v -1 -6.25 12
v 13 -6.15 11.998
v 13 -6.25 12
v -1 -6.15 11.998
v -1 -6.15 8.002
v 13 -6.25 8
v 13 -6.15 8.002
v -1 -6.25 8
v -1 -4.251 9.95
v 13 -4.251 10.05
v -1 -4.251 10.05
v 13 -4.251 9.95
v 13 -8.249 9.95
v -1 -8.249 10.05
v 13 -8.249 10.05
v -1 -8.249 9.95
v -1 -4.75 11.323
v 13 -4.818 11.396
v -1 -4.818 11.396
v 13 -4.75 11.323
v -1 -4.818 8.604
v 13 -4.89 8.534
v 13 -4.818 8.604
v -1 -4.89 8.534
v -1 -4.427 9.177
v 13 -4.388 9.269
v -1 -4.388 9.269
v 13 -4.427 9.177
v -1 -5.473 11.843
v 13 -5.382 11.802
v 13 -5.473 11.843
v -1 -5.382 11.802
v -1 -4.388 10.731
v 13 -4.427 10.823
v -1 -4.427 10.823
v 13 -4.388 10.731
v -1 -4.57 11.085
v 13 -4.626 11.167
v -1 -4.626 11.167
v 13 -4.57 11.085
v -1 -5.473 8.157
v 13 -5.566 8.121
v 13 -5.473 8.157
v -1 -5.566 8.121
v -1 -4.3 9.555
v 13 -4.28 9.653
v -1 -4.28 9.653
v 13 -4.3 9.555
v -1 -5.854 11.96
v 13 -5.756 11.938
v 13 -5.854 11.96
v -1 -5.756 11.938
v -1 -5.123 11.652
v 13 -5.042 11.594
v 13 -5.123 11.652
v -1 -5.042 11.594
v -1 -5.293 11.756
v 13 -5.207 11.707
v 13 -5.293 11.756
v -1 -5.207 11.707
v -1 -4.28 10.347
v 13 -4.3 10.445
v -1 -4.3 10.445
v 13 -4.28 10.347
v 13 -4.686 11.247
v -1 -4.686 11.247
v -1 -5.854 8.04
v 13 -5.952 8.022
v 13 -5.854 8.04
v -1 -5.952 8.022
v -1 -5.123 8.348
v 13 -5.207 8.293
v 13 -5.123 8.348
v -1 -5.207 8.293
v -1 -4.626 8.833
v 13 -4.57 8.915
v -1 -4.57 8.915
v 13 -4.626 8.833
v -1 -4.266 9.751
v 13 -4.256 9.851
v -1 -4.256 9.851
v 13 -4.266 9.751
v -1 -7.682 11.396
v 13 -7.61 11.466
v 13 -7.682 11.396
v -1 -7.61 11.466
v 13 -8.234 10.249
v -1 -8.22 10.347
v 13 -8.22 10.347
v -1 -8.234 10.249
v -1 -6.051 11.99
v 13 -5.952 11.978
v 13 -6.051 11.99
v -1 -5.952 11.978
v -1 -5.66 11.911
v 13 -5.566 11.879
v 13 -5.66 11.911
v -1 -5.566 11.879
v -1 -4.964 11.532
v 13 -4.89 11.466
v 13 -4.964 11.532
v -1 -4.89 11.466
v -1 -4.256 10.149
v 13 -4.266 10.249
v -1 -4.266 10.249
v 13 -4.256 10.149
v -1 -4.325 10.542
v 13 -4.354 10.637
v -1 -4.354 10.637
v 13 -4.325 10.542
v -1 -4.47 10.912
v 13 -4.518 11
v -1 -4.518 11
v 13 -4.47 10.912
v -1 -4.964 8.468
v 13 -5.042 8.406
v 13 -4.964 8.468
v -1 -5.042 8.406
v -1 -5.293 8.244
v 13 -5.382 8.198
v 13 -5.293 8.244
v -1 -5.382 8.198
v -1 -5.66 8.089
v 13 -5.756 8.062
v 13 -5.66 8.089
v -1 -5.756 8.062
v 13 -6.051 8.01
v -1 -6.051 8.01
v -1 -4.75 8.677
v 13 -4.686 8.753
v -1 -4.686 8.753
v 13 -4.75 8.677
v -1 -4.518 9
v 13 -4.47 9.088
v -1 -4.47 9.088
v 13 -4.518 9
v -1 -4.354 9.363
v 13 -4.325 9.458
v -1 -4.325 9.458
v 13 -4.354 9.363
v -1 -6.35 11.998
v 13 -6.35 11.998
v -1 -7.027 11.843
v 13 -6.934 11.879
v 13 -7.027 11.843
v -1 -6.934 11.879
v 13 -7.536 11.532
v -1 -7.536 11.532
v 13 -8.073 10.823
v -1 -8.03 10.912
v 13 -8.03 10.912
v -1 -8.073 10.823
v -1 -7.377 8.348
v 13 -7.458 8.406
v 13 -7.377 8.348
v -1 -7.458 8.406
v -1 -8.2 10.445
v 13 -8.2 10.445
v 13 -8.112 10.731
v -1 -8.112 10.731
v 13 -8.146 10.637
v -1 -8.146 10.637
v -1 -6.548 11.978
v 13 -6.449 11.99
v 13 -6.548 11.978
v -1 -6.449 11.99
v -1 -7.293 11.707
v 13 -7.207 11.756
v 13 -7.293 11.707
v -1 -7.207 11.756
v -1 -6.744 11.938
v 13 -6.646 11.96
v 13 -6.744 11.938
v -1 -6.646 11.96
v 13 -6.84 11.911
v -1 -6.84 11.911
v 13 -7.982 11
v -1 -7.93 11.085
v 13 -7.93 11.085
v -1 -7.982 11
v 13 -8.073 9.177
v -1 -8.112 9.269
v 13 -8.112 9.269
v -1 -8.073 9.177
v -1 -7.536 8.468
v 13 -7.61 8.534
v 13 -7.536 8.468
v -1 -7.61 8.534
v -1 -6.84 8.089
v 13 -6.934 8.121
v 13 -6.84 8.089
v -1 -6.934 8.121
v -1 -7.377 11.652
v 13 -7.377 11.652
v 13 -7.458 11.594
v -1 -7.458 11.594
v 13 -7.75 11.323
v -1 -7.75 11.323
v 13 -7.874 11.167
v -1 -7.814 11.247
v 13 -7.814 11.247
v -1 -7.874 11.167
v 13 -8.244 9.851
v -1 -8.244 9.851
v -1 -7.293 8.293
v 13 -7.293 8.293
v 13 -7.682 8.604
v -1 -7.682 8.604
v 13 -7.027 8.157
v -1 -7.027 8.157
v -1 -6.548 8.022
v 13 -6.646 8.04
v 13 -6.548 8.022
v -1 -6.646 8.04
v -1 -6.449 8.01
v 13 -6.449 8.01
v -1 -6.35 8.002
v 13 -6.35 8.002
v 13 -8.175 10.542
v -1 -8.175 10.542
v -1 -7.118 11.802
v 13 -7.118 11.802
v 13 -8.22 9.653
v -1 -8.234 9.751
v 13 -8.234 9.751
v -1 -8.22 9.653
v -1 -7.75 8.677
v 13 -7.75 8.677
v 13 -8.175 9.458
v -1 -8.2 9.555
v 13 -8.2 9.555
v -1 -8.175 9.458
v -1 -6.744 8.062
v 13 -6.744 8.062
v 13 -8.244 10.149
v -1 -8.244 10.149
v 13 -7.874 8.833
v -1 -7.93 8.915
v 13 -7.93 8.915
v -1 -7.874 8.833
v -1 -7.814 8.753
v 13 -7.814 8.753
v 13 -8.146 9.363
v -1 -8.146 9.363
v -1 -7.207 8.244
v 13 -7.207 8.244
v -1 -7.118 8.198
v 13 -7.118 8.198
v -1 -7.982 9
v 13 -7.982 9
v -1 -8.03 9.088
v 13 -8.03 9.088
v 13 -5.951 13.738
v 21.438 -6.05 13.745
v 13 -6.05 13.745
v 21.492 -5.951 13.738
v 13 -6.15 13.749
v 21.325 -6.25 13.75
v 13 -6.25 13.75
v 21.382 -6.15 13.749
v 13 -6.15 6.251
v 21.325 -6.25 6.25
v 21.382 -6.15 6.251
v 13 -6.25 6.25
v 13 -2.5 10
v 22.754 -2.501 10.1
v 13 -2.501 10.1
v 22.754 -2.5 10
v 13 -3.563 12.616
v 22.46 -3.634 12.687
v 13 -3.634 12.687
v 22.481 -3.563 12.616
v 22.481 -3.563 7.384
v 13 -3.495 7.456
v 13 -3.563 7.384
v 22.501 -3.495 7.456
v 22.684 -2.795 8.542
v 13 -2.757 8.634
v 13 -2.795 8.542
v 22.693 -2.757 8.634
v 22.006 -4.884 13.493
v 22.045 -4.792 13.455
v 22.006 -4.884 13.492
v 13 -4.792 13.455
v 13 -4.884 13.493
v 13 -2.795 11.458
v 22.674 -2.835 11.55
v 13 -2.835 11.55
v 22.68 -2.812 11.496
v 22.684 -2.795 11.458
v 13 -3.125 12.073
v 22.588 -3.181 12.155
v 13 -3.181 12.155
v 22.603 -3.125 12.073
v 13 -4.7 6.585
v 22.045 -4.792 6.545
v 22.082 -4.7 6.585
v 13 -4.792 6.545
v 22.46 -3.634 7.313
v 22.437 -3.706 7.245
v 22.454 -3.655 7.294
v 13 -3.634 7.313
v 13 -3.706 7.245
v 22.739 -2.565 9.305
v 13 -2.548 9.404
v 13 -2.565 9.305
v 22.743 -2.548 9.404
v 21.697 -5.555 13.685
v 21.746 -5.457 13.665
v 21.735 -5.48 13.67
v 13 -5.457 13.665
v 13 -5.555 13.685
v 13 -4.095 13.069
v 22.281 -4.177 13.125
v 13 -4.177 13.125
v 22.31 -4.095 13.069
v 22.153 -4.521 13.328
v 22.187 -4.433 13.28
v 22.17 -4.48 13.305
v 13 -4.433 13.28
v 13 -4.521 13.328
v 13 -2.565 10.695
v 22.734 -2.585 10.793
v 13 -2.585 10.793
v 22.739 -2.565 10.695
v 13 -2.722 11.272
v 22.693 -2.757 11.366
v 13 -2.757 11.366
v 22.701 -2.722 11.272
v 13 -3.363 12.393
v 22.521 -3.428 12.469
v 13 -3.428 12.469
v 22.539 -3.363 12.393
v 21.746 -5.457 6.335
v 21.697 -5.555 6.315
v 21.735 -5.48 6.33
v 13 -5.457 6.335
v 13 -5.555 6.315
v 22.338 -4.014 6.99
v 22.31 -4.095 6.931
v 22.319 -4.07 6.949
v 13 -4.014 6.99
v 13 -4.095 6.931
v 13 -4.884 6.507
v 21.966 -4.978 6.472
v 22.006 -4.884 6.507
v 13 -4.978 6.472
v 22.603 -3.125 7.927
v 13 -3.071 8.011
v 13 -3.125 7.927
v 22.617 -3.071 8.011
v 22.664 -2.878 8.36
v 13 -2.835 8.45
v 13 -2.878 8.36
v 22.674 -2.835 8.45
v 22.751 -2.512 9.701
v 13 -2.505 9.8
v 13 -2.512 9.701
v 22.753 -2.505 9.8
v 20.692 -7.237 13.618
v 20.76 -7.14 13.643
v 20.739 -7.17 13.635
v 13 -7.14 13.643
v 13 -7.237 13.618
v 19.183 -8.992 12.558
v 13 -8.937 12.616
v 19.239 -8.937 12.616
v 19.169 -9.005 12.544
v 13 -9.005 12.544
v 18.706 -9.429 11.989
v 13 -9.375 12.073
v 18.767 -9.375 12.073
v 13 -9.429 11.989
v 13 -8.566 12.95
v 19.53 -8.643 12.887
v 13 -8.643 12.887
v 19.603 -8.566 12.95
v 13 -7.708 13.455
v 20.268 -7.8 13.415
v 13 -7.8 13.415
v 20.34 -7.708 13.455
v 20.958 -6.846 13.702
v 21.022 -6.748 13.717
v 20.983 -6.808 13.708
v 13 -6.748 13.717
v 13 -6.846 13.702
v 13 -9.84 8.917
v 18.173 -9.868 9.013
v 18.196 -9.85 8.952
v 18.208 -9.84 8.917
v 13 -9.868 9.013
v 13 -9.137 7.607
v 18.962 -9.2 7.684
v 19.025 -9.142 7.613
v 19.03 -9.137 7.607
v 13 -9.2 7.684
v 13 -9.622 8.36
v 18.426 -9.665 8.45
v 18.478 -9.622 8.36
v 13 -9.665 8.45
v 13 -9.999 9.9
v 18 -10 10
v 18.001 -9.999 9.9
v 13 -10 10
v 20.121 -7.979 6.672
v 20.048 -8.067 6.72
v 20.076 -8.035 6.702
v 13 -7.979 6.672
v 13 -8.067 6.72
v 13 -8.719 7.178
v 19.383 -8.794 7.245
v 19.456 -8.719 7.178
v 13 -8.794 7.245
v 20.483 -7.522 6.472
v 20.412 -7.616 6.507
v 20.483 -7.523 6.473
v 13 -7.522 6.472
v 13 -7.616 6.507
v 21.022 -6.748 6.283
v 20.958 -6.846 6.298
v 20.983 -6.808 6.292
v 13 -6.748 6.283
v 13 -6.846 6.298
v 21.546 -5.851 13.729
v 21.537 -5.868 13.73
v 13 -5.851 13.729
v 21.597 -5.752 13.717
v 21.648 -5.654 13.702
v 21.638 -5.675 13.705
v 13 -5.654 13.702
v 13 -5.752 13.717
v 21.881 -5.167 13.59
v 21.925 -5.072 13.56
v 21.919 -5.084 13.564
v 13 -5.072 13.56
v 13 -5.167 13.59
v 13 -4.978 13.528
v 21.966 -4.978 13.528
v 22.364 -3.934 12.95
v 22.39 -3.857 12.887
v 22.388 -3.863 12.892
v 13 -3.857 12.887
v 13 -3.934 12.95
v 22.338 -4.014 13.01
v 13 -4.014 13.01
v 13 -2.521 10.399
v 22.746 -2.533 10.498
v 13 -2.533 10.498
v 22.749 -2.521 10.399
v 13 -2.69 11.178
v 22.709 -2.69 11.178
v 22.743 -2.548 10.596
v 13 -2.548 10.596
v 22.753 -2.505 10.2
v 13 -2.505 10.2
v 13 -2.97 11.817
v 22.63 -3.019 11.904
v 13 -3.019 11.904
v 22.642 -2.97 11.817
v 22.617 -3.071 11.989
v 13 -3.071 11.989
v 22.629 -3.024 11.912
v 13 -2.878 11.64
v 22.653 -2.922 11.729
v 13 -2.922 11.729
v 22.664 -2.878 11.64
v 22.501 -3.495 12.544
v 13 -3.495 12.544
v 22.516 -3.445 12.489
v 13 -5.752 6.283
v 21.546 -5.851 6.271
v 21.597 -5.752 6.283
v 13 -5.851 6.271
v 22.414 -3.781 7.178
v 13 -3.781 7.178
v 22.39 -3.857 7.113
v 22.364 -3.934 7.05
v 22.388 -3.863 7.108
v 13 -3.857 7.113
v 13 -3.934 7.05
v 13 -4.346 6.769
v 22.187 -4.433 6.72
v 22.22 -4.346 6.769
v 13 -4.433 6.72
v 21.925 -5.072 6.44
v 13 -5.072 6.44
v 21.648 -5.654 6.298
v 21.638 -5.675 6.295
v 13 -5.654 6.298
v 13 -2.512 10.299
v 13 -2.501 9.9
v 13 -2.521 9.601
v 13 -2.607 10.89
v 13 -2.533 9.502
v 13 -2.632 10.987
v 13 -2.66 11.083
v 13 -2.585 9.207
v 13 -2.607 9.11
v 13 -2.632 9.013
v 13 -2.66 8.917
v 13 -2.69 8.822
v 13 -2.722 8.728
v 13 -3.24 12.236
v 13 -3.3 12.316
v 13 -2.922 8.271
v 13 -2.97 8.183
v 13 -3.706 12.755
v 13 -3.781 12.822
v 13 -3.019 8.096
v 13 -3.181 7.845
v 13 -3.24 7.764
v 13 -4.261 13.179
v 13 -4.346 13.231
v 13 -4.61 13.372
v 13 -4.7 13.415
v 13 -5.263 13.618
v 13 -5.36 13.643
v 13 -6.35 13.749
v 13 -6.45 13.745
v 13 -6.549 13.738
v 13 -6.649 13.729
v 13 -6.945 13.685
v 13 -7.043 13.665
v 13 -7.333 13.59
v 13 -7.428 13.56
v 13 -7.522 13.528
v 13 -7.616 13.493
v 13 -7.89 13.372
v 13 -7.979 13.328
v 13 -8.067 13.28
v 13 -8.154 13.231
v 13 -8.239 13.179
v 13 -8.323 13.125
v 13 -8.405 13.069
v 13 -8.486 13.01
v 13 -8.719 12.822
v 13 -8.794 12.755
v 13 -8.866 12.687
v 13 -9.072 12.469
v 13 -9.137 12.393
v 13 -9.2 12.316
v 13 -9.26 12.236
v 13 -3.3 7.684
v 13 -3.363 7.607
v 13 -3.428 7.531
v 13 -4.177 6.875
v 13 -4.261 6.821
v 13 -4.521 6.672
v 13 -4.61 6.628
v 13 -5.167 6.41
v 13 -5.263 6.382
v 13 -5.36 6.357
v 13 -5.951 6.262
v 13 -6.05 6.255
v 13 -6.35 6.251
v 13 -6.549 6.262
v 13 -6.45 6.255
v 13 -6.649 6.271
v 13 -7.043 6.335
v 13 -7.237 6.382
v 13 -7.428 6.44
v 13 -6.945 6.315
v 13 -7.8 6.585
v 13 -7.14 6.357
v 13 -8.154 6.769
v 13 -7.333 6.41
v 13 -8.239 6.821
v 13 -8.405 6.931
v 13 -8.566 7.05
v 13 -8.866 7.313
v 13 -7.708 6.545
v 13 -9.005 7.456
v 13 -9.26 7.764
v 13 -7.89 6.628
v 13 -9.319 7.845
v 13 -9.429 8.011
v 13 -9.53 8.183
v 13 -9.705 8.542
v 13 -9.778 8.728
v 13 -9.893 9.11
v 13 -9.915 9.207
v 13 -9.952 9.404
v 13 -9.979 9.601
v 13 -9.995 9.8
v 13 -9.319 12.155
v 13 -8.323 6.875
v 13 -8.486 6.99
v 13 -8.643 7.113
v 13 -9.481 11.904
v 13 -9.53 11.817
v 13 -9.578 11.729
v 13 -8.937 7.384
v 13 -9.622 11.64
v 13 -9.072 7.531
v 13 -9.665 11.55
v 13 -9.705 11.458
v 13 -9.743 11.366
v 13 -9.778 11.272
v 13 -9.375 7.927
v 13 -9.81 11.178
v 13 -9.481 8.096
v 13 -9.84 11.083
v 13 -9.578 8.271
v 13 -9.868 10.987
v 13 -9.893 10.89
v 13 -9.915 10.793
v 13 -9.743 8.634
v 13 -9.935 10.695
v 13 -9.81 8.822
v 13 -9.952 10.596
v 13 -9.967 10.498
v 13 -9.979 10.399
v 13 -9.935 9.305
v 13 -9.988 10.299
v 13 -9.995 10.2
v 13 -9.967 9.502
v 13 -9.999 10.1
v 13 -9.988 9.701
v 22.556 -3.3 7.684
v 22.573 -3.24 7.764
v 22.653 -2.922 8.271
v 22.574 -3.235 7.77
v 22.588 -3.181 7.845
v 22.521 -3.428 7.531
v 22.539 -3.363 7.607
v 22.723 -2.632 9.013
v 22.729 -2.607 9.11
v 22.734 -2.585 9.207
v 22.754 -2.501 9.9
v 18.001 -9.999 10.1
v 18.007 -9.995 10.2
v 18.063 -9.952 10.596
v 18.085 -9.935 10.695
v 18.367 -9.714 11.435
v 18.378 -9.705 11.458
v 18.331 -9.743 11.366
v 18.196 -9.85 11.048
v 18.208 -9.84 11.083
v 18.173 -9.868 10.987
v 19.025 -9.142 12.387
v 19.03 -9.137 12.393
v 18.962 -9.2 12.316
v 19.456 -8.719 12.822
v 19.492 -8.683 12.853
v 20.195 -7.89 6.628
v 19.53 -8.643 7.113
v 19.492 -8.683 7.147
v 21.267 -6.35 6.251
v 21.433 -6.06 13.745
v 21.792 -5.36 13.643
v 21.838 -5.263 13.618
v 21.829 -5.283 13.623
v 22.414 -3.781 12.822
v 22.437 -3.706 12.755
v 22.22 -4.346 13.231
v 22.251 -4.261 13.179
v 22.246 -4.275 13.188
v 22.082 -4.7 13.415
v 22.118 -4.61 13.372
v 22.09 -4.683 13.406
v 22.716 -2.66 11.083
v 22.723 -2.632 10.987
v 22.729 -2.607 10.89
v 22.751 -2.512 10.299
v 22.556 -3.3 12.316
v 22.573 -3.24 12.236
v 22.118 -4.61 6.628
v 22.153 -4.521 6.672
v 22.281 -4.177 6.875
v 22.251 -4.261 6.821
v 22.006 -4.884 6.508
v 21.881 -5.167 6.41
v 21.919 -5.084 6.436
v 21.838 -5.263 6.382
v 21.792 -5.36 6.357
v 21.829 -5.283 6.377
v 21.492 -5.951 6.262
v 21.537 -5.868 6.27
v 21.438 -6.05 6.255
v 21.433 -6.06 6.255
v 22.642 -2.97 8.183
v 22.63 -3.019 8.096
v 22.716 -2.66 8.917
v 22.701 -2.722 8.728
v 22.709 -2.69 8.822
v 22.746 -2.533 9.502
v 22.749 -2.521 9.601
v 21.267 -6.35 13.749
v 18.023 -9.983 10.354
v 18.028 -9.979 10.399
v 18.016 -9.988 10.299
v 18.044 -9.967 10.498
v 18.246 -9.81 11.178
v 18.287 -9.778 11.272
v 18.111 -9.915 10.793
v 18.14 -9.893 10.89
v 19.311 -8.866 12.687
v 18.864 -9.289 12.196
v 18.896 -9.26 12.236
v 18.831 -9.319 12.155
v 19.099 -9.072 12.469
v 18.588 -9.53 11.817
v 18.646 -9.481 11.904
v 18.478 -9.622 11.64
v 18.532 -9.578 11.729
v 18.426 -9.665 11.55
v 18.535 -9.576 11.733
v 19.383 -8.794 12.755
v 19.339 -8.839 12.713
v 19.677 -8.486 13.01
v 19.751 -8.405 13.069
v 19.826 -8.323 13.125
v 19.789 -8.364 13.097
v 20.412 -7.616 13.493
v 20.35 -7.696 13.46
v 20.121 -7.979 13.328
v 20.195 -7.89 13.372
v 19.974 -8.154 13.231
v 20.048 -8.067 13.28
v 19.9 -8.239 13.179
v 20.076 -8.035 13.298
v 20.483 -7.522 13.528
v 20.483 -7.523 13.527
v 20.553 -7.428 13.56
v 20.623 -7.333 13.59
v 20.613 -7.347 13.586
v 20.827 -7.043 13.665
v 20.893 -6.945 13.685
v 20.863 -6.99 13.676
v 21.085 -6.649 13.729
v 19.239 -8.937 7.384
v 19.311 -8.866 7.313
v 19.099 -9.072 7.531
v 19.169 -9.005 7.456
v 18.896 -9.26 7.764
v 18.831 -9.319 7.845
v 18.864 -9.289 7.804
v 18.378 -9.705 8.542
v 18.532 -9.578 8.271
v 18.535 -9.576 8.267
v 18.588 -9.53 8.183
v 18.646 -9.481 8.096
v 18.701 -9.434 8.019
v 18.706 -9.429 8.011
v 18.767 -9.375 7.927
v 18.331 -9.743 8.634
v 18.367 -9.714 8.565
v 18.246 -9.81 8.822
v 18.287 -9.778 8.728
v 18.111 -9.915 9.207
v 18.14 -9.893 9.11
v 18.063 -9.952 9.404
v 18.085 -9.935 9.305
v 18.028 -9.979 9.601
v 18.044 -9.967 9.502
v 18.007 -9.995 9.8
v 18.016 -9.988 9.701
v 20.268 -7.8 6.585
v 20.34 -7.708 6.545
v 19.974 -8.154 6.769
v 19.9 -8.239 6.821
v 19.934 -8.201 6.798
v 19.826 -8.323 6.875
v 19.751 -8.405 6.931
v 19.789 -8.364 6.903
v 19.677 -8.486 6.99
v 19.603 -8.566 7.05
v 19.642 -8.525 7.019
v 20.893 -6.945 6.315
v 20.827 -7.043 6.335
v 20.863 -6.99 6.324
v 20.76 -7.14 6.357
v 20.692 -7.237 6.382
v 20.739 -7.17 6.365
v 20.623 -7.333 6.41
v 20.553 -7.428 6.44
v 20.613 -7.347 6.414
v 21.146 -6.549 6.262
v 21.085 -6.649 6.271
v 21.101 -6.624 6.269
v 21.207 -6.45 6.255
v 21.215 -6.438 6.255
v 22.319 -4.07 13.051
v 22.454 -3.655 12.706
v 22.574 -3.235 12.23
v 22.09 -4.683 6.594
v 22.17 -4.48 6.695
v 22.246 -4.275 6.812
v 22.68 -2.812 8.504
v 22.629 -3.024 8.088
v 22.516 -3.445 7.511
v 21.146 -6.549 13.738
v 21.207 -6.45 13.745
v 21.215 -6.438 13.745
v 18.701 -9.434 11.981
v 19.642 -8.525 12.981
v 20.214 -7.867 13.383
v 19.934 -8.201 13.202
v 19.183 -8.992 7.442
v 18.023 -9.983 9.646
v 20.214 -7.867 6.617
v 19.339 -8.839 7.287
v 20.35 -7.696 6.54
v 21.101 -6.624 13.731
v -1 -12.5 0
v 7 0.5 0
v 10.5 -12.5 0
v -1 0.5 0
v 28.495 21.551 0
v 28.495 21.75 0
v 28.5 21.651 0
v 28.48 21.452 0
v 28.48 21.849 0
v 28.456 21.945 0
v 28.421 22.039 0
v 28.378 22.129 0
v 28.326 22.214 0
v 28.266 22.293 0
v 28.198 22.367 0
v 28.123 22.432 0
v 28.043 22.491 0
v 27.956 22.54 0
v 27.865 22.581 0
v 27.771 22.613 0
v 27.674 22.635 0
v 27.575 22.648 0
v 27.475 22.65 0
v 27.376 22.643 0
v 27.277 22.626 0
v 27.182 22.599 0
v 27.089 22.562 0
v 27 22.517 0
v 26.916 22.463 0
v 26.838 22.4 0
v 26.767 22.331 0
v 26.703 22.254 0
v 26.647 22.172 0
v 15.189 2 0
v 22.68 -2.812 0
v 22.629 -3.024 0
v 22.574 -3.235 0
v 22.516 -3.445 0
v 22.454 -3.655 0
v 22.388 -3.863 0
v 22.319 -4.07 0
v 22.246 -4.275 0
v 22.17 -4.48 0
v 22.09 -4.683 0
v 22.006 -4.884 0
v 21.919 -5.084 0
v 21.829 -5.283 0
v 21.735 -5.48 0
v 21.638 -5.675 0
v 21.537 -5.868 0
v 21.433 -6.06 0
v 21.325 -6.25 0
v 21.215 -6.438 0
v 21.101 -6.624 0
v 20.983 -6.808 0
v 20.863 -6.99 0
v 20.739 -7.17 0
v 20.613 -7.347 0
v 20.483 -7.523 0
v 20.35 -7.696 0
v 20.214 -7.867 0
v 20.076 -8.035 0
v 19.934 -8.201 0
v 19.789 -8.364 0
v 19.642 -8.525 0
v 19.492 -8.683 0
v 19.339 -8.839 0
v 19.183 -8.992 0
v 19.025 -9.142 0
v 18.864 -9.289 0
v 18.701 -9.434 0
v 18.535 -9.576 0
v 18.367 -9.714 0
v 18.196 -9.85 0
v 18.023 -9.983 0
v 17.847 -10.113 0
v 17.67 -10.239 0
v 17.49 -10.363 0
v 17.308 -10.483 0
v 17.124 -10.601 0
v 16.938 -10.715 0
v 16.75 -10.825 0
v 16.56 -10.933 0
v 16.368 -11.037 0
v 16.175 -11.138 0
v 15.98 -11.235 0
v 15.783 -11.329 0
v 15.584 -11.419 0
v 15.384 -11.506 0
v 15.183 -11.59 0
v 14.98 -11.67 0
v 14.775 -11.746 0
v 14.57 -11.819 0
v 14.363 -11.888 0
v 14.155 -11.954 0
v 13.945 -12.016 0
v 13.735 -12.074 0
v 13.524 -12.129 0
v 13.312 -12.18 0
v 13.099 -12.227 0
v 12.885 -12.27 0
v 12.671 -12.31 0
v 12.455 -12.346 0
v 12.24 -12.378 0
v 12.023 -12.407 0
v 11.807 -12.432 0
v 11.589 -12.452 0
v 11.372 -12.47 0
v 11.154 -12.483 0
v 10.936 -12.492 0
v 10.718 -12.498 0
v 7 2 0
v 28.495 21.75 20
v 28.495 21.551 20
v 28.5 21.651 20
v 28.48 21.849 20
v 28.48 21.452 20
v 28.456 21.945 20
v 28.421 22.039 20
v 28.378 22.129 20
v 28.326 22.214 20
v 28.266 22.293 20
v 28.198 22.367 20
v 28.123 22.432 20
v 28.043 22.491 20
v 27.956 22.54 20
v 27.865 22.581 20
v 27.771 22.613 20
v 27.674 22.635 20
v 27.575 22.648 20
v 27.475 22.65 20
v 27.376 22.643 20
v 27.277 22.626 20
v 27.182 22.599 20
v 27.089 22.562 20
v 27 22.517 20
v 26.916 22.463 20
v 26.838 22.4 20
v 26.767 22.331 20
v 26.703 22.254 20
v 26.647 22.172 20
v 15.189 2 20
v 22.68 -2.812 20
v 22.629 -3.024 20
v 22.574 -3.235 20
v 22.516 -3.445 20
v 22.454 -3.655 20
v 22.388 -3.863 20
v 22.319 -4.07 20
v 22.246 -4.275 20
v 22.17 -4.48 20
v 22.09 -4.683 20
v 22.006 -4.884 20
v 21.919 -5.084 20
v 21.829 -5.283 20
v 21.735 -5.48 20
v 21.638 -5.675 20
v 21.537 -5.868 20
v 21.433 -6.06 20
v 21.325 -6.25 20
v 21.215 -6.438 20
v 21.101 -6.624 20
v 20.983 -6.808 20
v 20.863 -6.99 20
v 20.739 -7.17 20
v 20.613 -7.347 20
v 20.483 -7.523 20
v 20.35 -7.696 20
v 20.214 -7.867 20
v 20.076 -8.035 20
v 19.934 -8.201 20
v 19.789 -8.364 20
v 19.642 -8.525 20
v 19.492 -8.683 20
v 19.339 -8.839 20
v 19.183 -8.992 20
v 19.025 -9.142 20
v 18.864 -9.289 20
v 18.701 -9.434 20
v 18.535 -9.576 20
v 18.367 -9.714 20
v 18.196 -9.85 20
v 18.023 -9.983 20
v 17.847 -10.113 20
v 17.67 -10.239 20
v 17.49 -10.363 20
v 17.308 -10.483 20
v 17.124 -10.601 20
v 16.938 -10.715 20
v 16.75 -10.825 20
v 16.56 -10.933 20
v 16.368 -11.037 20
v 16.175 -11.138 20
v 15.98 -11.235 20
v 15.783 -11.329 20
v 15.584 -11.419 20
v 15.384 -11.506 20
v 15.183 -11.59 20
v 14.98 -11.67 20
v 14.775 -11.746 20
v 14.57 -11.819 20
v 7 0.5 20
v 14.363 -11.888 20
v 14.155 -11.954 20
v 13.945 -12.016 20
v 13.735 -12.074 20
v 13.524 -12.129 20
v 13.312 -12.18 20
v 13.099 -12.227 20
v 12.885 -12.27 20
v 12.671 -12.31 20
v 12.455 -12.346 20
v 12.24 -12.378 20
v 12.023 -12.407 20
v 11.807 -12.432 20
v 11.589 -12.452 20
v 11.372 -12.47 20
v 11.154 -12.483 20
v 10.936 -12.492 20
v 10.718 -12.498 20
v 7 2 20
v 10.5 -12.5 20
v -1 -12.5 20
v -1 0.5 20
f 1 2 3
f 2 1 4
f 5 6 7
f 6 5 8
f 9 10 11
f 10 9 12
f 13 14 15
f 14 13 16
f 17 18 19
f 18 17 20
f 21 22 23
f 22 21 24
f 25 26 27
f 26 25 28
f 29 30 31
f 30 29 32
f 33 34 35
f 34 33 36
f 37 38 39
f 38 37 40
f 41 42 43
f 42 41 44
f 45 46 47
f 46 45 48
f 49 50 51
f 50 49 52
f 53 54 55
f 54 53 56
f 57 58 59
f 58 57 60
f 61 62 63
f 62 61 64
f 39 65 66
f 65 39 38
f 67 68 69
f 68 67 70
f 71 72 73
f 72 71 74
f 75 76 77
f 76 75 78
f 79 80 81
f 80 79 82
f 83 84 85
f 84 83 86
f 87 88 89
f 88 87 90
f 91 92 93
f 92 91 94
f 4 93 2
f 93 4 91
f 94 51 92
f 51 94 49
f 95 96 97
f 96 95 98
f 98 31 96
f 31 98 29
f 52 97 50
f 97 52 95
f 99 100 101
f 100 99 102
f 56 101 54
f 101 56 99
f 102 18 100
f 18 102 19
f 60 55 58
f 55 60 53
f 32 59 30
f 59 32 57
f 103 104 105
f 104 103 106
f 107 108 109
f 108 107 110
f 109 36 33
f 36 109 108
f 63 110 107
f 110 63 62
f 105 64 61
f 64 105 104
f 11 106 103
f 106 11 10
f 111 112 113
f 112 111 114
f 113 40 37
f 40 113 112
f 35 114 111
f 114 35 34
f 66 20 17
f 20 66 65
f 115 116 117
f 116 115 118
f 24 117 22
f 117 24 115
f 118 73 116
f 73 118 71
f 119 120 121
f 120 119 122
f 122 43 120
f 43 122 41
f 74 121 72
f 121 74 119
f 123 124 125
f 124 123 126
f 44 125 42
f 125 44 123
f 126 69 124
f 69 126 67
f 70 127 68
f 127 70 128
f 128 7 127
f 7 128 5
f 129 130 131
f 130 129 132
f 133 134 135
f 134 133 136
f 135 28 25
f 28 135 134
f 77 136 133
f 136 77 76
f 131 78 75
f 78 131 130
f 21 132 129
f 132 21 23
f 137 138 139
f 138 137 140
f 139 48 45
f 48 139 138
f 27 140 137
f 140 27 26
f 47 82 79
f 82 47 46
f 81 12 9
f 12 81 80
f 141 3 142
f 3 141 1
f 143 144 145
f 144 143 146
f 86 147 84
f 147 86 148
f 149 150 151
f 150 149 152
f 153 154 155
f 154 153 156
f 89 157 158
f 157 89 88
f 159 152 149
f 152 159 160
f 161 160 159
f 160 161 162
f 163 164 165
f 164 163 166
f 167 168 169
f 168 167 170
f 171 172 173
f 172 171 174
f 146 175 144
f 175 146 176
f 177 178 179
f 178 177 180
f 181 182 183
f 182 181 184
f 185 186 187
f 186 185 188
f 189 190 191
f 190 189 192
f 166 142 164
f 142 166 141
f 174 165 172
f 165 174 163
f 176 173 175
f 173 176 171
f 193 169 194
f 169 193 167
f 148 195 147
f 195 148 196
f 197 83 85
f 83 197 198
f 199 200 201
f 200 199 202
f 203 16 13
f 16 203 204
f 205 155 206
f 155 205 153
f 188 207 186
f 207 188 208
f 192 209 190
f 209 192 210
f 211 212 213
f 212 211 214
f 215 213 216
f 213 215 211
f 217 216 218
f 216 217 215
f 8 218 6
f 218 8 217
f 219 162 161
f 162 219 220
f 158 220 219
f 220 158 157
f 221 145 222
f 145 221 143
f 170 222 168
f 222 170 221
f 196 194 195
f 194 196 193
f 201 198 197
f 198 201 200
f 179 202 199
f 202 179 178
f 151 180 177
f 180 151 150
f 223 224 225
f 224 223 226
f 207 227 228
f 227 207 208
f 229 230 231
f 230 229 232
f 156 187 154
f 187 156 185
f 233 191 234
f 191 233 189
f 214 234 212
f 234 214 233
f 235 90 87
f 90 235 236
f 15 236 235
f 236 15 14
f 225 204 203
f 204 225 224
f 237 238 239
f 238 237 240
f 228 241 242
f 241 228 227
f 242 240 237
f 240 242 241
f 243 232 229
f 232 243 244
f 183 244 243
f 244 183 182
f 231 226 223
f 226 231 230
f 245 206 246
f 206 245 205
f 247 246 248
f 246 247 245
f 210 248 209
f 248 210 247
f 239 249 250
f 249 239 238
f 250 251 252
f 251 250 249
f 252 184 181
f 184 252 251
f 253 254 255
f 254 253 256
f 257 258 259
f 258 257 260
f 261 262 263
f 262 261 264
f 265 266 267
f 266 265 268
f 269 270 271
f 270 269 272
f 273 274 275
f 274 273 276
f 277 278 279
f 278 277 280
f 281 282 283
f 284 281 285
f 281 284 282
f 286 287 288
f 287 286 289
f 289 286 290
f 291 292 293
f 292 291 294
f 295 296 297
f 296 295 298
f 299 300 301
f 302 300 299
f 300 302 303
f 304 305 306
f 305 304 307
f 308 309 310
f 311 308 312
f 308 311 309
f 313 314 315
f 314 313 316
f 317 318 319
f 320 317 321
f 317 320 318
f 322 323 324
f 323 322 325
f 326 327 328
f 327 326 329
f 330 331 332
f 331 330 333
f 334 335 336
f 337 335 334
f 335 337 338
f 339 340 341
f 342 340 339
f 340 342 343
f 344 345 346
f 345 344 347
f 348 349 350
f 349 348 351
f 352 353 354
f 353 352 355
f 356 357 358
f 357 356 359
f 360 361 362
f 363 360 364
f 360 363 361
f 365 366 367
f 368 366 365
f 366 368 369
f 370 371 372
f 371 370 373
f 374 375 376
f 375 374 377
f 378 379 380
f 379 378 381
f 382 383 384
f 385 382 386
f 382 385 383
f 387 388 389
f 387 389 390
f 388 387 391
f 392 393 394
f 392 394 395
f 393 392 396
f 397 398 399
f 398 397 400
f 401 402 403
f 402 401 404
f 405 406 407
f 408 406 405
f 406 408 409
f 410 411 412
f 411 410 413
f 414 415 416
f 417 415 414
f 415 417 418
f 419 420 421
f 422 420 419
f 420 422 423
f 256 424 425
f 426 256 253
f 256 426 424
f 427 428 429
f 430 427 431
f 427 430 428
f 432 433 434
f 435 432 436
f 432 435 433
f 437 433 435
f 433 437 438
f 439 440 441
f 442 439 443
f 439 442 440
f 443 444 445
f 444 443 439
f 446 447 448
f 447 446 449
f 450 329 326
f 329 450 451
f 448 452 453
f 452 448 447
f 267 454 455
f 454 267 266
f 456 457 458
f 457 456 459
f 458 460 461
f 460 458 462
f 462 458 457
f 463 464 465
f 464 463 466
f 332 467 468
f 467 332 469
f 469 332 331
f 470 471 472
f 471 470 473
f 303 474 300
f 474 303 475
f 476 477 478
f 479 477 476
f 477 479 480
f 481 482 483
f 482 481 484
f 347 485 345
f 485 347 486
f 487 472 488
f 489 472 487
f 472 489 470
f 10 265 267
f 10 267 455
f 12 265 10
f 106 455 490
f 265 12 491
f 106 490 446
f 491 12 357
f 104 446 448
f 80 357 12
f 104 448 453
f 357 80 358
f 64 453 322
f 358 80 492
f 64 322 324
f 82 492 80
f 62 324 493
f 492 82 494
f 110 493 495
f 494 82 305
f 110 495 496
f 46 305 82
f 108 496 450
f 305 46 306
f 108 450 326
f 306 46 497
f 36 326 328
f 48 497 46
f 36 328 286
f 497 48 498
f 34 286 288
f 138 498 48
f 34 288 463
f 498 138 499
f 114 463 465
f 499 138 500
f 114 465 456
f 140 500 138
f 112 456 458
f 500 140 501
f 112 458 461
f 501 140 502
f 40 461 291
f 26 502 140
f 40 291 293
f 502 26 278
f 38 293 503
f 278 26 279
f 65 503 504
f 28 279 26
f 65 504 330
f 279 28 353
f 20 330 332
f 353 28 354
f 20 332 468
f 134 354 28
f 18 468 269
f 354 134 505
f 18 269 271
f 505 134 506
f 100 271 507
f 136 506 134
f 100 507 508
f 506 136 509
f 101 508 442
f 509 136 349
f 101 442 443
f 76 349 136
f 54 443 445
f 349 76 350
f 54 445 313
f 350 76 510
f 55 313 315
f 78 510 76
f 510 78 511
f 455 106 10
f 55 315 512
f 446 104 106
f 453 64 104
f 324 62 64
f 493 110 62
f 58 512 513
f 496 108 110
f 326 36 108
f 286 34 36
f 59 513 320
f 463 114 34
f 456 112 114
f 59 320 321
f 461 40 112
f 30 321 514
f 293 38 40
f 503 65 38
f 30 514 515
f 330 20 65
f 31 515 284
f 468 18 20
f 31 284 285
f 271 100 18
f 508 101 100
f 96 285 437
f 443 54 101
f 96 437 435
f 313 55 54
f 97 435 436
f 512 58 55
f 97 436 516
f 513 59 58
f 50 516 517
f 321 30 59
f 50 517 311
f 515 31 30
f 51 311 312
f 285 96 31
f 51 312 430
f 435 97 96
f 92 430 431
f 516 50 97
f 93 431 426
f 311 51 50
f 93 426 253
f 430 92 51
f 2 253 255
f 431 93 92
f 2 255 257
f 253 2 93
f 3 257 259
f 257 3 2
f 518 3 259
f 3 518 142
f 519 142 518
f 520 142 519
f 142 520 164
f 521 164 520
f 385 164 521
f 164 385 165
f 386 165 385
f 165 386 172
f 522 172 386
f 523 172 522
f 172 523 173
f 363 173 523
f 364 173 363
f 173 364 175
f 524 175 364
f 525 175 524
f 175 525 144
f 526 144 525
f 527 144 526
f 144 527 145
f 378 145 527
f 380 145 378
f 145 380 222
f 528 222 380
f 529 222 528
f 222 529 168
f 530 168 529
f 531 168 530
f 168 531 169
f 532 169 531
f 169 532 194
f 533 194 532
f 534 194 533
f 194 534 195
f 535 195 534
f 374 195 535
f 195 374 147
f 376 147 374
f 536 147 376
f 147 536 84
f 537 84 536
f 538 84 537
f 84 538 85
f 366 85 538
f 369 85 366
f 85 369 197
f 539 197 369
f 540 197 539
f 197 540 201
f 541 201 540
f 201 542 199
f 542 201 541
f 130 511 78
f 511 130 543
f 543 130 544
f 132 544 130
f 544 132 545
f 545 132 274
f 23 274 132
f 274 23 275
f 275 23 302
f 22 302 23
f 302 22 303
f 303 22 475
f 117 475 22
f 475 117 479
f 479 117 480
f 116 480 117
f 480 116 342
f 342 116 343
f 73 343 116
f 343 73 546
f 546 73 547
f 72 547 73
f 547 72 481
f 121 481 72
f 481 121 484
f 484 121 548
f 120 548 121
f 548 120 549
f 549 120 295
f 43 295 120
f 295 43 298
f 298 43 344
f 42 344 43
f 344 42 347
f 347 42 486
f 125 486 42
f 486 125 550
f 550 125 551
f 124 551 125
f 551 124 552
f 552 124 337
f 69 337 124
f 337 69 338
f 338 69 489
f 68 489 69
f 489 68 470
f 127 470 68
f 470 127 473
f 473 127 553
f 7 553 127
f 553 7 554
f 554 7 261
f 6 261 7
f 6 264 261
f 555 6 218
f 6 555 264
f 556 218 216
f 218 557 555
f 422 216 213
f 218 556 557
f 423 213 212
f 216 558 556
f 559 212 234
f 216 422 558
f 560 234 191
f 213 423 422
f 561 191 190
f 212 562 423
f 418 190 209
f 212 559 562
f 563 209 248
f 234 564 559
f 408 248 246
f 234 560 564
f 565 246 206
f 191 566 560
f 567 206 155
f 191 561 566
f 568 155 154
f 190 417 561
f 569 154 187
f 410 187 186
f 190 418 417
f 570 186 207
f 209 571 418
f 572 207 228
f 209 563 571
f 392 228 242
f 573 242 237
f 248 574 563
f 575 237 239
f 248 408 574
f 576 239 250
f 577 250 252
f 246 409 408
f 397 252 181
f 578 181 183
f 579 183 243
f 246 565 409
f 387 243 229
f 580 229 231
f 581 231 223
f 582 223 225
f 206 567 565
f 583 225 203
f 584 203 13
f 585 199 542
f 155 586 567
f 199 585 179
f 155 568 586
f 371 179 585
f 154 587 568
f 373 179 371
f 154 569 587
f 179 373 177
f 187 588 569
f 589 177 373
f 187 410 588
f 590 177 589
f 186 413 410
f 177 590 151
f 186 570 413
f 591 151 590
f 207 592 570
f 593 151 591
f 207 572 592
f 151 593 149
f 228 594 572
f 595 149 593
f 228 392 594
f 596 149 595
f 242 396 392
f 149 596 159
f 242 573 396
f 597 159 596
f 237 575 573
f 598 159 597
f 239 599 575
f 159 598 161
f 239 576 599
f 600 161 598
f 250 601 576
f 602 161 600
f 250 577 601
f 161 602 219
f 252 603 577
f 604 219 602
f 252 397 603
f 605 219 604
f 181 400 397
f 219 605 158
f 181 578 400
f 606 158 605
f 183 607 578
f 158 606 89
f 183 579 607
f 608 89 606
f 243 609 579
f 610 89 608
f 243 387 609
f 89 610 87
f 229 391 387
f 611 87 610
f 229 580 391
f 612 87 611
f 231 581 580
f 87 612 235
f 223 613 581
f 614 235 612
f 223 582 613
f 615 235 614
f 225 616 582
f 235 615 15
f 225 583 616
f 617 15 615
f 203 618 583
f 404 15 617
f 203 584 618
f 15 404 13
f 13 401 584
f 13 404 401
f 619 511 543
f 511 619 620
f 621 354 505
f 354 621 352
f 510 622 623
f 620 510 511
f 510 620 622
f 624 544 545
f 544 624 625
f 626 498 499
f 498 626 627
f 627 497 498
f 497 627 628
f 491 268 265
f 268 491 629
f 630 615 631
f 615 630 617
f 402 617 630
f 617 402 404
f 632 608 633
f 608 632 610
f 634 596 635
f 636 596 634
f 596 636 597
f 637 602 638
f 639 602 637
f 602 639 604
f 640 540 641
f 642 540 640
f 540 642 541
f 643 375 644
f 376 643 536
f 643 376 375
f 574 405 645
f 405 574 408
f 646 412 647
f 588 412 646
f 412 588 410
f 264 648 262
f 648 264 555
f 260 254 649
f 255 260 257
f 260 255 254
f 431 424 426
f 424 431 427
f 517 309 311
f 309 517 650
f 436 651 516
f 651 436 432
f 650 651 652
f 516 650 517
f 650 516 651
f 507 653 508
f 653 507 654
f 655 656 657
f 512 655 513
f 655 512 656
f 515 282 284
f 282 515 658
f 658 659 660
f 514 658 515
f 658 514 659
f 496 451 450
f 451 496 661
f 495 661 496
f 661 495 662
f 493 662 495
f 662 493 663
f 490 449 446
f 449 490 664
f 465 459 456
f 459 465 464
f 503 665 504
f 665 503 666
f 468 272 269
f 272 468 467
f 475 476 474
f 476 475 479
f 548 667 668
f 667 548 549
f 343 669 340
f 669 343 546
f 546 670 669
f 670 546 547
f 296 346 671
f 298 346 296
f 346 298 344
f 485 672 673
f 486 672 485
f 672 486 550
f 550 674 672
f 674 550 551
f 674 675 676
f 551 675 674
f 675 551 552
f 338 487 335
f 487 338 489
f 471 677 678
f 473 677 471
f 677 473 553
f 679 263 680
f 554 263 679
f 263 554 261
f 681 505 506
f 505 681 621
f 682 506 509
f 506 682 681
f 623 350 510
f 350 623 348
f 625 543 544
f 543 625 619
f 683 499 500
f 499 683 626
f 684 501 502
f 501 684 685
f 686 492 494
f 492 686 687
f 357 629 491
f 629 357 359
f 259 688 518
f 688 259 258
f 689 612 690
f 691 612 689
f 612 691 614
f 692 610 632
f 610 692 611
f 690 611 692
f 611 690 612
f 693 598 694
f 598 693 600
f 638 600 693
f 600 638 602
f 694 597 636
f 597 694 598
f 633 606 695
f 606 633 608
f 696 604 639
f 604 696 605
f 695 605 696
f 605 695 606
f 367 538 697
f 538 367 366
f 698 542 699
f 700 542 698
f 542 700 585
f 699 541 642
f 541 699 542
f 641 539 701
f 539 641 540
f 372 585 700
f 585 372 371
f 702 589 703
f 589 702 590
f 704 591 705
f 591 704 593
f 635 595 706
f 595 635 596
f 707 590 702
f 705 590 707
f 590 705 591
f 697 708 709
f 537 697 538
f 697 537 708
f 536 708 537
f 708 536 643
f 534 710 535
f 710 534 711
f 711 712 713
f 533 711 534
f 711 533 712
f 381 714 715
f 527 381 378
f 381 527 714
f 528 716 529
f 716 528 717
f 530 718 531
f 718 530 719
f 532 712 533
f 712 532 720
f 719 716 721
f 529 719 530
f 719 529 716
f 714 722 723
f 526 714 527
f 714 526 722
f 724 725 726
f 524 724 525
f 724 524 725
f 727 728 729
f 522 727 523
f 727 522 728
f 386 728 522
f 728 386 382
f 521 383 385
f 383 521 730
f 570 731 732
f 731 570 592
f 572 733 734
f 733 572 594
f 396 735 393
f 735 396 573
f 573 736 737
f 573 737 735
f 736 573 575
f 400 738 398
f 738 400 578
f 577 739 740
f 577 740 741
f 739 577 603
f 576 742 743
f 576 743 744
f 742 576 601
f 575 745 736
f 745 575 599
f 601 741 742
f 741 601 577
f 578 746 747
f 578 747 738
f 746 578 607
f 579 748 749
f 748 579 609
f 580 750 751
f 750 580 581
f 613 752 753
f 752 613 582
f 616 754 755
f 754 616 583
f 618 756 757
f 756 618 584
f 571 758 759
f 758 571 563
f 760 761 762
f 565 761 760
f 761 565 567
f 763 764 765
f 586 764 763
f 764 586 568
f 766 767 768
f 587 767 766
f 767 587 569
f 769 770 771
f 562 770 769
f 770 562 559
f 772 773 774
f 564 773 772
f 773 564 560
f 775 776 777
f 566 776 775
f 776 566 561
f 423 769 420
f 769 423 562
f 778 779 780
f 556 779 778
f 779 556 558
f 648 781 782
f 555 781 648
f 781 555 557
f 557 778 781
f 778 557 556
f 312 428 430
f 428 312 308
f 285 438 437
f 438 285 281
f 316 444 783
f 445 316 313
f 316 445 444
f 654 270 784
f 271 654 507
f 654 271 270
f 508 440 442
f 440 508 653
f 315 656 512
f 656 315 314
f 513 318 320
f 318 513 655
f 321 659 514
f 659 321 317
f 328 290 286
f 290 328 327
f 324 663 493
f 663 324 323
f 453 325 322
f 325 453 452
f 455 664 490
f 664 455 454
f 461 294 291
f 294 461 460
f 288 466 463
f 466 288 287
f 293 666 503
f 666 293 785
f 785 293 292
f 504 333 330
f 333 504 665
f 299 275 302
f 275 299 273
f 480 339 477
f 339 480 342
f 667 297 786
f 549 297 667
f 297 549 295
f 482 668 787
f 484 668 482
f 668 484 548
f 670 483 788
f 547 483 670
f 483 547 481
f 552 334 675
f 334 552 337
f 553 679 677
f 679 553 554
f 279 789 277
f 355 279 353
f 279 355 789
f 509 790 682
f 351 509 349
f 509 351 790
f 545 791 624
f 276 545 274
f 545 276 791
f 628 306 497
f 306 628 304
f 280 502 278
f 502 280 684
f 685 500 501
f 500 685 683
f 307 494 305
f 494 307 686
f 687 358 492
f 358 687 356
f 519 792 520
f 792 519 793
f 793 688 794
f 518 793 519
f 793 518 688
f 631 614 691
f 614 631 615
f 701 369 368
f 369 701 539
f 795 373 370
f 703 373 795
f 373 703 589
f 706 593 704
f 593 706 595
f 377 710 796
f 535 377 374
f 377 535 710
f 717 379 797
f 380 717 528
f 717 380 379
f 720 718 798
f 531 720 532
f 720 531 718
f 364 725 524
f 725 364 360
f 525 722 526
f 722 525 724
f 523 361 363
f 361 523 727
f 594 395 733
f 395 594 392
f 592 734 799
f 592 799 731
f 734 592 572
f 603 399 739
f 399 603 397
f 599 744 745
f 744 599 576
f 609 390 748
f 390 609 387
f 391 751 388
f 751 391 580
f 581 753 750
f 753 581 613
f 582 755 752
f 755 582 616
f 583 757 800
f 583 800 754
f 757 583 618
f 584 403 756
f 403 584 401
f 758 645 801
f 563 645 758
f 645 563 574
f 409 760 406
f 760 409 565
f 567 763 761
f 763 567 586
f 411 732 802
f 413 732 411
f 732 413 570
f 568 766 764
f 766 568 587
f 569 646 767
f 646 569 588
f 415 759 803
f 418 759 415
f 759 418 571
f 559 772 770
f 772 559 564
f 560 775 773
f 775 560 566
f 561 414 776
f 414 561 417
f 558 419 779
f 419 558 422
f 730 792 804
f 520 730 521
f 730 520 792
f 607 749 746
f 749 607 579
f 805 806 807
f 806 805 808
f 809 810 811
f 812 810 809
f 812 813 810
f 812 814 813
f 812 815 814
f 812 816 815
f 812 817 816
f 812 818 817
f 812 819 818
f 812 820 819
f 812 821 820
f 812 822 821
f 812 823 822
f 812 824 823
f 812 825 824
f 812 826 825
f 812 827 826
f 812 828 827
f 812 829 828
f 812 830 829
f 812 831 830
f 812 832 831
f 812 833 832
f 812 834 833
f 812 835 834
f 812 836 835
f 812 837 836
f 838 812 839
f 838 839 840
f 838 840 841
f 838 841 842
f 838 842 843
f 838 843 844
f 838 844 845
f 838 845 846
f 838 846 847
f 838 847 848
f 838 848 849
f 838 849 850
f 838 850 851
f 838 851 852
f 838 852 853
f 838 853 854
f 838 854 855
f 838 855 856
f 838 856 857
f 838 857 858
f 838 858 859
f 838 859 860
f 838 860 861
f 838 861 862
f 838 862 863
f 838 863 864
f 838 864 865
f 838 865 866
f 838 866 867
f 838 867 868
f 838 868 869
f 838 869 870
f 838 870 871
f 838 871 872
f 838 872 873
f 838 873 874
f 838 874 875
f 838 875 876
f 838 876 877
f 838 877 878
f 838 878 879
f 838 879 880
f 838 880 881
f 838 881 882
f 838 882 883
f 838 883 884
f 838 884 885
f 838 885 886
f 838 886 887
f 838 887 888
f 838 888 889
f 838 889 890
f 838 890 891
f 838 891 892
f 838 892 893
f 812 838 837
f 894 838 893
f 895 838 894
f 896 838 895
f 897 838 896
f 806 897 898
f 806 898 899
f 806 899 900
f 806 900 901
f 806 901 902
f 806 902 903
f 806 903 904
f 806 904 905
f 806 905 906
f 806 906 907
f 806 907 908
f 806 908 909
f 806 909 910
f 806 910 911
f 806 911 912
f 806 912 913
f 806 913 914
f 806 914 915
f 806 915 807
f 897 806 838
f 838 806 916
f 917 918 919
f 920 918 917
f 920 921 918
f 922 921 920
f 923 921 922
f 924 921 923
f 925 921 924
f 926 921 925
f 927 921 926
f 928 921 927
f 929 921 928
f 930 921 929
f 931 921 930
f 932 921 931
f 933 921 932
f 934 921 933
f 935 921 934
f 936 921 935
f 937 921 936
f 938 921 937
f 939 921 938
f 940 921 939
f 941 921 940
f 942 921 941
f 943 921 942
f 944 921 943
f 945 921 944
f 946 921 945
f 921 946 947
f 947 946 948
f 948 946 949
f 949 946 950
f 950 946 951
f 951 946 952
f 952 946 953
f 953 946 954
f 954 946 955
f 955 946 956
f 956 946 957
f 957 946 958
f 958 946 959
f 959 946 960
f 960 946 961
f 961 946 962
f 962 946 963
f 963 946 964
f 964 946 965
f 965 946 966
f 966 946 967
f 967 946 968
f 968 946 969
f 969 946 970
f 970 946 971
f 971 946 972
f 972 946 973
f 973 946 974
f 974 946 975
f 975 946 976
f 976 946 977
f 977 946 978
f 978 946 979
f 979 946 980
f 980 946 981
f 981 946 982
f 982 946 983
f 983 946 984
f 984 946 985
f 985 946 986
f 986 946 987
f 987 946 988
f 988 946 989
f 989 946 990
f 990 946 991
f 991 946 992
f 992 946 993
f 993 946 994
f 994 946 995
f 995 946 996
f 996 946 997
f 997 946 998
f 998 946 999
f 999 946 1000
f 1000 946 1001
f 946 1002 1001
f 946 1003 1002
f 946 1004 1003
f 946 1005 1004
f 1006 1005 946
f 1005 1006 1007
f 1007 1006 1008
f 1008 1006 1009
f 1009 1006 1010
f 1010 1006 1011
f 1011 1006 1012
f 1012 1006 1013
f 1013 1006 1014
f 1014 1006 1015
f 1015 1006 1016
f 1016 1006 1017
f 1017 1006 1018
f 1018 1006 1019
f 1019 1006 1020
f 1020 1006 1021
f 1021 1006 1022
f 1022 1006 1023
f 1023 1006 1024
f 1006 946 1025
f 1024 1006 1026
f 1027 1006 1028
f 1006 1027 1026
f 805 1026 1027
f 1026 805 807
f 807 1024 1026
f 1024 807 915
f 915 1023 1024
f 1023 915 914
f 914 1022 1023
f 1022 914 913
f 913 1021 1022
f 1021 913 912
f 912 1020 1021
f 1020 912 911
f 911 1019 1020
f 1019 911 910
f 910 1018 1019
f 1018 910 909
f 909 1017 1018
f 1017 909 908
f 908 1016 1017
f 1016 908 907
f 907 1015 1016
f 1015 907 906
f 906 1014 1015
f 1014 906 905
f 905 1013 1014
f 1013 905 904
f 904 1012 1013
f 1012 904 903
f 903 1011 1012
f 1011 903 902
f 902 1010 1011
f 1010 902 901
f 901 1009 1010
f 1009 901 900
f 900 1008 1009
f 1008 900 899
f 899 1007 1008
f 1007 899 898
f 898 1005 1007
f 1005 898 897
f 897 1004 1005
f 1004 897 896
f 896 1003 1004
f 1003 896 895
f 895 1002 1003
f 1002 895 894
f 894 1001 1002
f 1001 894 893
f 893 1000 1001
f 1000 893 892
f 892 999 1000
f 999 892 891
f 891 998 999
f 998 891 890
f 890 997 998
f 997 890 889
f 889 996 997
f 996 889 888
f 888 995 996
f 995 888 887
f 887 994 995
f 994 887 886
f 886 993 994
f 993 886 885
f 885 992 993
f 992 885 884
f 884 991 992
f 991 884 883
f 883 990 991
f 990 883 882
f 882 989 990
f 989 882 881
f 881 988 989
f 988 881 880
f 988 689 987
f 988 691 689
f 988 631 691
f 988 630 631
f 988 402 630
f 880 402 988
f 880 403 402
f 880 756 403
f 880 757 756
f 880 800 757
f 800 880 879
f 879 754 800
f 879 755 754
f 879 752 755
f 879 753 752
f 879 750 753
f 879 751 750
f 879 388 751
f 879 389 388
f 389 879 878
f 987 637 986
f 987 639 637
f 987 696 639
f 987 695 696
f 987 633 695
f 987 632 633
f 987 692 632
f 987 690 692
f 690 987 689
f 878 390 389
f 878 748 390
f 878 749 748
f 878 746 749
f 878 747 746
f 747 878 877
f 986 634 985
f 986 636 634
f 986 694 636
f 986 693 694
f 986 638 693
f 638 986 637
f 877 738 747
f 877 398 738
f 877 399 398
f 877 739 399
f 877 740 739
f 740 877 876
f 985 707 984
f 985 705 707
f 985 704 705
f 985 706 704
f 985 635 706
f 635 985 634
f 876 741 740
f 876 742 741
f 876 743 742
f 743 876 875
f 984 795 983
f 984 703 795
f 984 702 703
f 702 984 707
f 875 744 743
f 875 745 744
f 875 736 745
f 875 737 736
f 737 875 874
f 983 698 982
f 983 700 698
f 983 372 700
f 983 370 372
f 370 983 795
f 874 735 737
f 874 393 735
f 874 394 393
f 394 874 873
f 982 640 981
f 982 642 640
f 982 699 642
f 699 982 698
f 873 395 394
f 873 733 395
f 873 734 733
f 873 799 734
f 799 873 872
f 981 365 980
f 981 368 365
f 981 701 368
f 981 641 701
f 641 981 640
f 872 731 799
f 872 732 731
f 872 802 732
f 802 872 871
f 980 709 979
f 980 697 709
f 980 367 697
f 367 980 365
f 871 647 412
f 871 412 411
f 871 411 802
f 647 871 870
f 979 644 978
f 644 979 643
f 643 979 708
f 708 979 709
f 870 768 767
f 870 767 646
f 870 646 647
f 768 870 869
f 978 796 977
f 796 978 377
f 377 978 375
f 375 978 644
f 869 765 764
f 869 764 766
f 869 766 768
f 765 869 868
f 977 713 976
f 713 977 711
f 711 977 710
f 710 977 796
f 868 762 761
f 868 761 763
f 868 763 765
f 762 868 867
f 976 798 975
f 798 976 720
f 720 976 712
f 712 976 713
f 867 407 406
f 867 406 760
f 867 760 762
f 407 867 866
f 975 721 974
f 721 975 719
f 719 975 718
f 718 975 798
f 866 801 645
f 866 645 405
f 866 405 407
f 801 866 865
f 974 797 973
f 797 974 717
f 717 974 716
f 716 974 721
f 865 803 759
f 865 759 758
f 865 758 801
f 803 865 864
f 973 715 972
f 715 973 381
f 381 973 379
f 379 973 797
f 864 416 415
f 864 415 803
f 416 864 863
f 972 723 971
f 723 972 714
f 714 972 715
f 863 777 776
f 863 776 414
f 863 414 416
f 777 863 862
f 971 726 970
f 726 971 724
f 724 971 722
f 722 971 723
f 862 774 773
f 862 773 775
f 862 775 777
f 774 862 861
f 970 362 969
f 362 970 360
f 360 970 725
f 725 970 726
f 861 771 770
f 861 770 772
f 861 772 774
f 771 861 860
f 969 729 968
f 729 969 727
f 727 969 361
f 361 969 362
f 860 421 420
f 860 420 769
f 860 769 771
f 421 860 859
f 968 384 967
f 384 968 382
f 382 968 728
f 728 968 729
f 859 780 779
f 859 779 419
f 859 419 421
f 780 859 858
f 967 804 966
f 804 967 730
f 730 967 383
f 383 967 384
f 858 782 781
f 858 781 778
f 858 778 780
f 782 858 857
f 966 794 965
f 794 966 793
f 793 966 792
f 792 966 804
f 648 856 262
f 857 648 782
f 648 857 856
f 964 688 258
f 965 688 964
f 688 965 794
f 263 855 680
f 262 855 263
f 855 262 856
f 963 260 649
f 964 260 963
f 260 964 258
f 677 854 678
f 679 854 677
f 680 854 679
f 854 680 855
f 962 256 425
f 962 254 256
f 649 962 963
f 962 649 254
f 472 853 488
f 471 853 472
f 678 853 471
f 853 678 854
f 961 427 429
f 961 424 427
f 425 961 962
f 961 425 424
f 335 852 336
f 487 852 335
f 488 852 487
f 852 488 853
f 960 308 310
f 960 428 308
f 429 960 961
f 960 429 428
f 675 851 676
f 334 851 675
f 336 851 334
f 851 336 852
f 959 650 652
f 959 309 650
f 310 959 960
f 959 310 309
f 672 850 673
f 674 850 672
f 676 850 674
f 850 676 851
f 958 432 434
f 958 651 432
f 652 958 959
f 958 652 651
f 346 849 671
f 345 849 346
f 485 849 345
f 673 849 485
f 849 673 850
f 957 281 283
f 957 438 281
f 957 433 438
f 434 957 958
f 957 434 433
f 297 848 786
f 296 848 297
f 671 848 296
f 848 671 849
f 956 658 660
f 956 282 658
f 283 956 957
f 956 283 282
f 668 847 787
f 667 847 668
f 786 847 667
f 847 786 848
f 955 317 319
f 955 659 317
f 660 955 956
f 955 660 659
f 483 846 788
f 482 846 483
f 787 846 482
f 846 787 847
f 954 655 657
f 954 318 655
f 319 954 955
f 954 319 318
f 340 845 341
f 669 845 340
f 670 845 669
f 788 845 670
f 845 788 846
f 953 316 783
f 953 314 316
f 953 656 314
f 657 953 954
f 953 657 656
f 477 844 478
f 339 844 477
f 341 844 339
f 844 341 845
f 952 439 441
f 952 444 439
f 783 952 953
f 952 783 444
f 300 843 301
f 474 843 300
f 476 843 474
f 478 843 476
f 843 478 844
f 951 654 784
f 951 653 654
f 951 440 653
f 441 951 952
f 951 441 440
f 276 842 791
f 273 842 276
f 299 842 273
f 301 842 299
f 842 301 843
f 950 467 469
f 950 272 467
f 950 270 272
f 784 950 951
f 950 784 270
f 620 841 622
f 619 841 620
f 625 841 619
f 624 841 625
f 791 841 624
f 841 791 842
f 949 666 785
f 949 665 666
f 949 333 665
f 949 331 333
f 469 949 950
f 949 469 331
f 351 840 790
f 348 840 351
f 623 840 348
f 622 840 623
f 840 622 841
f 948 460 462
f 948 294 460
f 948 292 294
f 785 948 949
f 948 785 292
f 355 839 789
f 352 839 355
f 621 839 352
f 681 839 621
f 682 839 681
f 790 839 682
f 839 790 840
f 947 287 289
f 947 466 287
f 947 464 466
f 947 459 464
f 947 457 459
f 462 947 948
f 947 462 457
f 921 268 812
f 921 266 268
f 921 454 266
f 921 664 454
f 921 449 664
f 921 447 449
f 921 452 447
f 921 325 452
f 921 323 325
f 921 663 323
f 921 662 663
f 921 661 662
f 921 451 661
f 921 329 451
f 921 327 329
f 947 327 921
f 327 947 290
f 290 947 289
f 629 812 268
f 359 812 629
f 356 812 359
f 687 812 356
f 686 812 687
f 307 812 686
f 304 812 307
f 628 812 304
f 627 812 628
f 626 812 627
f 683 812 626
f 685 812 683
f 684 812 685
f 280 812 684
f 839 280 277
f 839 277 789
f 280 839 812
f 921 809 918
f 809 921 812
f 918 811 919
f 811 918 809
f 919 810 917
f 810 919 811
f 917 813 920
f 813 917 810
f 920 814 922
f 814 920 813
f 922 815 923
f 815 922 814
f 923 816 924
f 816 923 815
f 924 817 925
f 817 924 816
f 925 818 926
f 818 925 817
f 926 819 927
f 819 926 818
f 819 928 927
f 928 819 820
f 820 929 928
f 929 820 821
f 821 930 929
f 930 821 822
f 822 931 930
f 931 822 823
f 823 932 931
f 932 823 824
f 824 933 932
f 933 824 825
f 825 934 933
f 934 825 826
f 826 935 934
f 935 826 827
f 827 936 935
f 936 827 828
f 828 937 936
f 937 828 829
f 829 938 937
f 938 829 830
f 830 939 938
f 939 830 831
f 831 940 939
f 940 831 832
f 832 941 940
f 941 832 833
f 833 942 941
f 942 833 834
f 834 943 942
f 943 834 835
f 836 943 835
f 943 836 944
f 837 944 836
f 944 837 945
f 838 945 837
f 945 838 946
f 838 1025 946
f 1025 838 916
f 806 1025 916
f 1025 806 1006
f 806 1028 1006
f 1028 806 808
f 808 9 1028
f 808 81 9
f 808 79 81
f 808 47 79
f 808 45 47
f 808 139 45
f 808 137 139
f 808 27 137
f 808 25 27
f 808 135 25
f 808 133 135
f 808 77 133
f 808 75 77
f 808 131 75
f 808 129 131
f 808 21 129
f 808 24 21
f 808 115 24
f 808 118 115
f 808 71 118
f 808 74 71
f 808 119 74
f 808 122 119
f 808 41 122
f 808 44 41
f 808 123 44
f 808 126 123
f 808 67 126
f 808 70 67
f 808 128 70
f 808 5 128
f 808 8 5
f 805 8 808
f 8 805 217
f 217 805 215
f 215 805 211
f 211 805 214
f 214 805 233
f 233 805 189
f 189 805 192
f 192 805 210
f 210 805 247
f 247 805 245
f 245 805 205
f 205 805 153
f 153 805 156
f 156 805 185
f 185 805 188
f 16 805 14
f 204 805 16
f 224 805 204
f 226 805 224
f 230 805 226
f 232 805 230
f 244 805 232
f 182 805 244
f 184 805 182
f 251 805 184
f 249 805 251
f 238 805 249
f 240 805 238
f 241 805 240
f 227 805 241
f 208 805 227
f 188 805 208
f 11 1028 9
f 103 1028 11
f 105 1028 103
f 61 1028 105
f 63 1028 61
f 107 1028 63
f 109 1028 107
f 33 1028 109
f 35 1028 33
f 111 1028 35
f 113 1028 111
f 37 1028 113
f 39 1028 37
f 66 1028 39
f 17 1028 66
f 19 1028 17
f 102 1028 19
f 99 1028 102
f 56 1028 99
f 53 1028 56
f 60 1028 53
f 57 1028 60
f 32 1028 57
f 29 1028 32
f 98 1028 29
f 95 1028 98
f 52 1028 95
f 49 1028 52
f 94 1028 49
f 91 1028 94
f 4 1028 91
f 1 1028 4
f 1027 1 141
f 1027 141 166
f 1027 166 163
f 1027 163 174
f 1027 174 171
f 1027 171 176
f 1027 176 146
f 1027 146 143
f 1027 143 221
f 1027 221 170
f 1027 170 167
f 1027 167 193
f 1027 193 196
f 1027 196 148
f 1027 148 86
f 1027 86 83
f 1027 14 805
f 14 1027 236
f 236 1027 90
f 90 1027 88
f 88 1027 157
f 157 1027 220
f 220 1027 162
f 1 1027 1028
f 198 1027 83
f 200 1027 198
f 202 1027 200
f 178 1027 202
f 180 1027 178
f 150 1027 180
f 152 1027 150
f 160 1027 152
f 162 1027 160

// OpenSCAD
$fa = 1;
$fs = 0.1;

ANGLE = 30;
SHIFT = 25 * [sin(ANGLE), cos(ANGLE)];
THICKNESS = 2;
DEPTH = 15;
BOTTOM_DIAMETER = 25;
WIDTH = 20;
FUDGE_FACTOR = 1;
BACK = false;

difference() {
  hook();

  translate([23, -BOTTOM_DIAMETER/4, WIDTH/2])
  screwway();
}

module screwway() {
  rotate([0, -90, 0]) {
    cylinder(d=4, h=30);
    cylinder(d=7.5, h=10);
  }
}

module hook() {
  linear_extrude(WIDTH)
  union() {
    difference() {
      union() {
        translate([-THICKNESS, 0])
        square([THICKNESS, 40]);

        hull() {
          translate([DEPTH, 0])
          arm();

          translate([-THICKNESS, 0])
          intersection() {
            bottom();

            rotate(-ANGLE)
            translate([15 - THICKNESS/2, -10])
            square(50);
          }
        }

        translate([-THICKNESS, 0])
        bottom();

        translate([-THICKNESS, -BOTTOM_DIAMETER/2])
        square(BOTTOM_DIAMETER/2);
      }

      translate([0, .5])
      square([7, 2]);

      if (!BACK) {
        translate([-50, -50])
        square([50, 100]);
      }
    }

    // Give a litte extra room for staples, folded canvas, etc
    translate([-FUDGE_FACTOR, -BOTTOM_DIAMETER/2])
    square([FUDGE_FACTOR, BOTTOM_DIAMETER/2 + 0.5]);
  }
}


module arm() {
  hull() {
    translate(SHIFT)
    circle(d=THICKNESS);

    translate([THICKNESS/2, THICKNESS/2])
    circle(d=THICKNESS);
  }
}

module bottom() {
  difference() {
    translate([BOTTOM_DIAMETER/2 ,0, 0])
    circle(d=BOTTOM_DIAMETER);
    square(BOTTOM_DIAMETER);
  }
  square([BOTTOM_DIAMETER, THICKNESS]);
}
/* translate([(2*THICKNESS + DEPTH)/2 - THICKNESS, 0, 0]) */






//
